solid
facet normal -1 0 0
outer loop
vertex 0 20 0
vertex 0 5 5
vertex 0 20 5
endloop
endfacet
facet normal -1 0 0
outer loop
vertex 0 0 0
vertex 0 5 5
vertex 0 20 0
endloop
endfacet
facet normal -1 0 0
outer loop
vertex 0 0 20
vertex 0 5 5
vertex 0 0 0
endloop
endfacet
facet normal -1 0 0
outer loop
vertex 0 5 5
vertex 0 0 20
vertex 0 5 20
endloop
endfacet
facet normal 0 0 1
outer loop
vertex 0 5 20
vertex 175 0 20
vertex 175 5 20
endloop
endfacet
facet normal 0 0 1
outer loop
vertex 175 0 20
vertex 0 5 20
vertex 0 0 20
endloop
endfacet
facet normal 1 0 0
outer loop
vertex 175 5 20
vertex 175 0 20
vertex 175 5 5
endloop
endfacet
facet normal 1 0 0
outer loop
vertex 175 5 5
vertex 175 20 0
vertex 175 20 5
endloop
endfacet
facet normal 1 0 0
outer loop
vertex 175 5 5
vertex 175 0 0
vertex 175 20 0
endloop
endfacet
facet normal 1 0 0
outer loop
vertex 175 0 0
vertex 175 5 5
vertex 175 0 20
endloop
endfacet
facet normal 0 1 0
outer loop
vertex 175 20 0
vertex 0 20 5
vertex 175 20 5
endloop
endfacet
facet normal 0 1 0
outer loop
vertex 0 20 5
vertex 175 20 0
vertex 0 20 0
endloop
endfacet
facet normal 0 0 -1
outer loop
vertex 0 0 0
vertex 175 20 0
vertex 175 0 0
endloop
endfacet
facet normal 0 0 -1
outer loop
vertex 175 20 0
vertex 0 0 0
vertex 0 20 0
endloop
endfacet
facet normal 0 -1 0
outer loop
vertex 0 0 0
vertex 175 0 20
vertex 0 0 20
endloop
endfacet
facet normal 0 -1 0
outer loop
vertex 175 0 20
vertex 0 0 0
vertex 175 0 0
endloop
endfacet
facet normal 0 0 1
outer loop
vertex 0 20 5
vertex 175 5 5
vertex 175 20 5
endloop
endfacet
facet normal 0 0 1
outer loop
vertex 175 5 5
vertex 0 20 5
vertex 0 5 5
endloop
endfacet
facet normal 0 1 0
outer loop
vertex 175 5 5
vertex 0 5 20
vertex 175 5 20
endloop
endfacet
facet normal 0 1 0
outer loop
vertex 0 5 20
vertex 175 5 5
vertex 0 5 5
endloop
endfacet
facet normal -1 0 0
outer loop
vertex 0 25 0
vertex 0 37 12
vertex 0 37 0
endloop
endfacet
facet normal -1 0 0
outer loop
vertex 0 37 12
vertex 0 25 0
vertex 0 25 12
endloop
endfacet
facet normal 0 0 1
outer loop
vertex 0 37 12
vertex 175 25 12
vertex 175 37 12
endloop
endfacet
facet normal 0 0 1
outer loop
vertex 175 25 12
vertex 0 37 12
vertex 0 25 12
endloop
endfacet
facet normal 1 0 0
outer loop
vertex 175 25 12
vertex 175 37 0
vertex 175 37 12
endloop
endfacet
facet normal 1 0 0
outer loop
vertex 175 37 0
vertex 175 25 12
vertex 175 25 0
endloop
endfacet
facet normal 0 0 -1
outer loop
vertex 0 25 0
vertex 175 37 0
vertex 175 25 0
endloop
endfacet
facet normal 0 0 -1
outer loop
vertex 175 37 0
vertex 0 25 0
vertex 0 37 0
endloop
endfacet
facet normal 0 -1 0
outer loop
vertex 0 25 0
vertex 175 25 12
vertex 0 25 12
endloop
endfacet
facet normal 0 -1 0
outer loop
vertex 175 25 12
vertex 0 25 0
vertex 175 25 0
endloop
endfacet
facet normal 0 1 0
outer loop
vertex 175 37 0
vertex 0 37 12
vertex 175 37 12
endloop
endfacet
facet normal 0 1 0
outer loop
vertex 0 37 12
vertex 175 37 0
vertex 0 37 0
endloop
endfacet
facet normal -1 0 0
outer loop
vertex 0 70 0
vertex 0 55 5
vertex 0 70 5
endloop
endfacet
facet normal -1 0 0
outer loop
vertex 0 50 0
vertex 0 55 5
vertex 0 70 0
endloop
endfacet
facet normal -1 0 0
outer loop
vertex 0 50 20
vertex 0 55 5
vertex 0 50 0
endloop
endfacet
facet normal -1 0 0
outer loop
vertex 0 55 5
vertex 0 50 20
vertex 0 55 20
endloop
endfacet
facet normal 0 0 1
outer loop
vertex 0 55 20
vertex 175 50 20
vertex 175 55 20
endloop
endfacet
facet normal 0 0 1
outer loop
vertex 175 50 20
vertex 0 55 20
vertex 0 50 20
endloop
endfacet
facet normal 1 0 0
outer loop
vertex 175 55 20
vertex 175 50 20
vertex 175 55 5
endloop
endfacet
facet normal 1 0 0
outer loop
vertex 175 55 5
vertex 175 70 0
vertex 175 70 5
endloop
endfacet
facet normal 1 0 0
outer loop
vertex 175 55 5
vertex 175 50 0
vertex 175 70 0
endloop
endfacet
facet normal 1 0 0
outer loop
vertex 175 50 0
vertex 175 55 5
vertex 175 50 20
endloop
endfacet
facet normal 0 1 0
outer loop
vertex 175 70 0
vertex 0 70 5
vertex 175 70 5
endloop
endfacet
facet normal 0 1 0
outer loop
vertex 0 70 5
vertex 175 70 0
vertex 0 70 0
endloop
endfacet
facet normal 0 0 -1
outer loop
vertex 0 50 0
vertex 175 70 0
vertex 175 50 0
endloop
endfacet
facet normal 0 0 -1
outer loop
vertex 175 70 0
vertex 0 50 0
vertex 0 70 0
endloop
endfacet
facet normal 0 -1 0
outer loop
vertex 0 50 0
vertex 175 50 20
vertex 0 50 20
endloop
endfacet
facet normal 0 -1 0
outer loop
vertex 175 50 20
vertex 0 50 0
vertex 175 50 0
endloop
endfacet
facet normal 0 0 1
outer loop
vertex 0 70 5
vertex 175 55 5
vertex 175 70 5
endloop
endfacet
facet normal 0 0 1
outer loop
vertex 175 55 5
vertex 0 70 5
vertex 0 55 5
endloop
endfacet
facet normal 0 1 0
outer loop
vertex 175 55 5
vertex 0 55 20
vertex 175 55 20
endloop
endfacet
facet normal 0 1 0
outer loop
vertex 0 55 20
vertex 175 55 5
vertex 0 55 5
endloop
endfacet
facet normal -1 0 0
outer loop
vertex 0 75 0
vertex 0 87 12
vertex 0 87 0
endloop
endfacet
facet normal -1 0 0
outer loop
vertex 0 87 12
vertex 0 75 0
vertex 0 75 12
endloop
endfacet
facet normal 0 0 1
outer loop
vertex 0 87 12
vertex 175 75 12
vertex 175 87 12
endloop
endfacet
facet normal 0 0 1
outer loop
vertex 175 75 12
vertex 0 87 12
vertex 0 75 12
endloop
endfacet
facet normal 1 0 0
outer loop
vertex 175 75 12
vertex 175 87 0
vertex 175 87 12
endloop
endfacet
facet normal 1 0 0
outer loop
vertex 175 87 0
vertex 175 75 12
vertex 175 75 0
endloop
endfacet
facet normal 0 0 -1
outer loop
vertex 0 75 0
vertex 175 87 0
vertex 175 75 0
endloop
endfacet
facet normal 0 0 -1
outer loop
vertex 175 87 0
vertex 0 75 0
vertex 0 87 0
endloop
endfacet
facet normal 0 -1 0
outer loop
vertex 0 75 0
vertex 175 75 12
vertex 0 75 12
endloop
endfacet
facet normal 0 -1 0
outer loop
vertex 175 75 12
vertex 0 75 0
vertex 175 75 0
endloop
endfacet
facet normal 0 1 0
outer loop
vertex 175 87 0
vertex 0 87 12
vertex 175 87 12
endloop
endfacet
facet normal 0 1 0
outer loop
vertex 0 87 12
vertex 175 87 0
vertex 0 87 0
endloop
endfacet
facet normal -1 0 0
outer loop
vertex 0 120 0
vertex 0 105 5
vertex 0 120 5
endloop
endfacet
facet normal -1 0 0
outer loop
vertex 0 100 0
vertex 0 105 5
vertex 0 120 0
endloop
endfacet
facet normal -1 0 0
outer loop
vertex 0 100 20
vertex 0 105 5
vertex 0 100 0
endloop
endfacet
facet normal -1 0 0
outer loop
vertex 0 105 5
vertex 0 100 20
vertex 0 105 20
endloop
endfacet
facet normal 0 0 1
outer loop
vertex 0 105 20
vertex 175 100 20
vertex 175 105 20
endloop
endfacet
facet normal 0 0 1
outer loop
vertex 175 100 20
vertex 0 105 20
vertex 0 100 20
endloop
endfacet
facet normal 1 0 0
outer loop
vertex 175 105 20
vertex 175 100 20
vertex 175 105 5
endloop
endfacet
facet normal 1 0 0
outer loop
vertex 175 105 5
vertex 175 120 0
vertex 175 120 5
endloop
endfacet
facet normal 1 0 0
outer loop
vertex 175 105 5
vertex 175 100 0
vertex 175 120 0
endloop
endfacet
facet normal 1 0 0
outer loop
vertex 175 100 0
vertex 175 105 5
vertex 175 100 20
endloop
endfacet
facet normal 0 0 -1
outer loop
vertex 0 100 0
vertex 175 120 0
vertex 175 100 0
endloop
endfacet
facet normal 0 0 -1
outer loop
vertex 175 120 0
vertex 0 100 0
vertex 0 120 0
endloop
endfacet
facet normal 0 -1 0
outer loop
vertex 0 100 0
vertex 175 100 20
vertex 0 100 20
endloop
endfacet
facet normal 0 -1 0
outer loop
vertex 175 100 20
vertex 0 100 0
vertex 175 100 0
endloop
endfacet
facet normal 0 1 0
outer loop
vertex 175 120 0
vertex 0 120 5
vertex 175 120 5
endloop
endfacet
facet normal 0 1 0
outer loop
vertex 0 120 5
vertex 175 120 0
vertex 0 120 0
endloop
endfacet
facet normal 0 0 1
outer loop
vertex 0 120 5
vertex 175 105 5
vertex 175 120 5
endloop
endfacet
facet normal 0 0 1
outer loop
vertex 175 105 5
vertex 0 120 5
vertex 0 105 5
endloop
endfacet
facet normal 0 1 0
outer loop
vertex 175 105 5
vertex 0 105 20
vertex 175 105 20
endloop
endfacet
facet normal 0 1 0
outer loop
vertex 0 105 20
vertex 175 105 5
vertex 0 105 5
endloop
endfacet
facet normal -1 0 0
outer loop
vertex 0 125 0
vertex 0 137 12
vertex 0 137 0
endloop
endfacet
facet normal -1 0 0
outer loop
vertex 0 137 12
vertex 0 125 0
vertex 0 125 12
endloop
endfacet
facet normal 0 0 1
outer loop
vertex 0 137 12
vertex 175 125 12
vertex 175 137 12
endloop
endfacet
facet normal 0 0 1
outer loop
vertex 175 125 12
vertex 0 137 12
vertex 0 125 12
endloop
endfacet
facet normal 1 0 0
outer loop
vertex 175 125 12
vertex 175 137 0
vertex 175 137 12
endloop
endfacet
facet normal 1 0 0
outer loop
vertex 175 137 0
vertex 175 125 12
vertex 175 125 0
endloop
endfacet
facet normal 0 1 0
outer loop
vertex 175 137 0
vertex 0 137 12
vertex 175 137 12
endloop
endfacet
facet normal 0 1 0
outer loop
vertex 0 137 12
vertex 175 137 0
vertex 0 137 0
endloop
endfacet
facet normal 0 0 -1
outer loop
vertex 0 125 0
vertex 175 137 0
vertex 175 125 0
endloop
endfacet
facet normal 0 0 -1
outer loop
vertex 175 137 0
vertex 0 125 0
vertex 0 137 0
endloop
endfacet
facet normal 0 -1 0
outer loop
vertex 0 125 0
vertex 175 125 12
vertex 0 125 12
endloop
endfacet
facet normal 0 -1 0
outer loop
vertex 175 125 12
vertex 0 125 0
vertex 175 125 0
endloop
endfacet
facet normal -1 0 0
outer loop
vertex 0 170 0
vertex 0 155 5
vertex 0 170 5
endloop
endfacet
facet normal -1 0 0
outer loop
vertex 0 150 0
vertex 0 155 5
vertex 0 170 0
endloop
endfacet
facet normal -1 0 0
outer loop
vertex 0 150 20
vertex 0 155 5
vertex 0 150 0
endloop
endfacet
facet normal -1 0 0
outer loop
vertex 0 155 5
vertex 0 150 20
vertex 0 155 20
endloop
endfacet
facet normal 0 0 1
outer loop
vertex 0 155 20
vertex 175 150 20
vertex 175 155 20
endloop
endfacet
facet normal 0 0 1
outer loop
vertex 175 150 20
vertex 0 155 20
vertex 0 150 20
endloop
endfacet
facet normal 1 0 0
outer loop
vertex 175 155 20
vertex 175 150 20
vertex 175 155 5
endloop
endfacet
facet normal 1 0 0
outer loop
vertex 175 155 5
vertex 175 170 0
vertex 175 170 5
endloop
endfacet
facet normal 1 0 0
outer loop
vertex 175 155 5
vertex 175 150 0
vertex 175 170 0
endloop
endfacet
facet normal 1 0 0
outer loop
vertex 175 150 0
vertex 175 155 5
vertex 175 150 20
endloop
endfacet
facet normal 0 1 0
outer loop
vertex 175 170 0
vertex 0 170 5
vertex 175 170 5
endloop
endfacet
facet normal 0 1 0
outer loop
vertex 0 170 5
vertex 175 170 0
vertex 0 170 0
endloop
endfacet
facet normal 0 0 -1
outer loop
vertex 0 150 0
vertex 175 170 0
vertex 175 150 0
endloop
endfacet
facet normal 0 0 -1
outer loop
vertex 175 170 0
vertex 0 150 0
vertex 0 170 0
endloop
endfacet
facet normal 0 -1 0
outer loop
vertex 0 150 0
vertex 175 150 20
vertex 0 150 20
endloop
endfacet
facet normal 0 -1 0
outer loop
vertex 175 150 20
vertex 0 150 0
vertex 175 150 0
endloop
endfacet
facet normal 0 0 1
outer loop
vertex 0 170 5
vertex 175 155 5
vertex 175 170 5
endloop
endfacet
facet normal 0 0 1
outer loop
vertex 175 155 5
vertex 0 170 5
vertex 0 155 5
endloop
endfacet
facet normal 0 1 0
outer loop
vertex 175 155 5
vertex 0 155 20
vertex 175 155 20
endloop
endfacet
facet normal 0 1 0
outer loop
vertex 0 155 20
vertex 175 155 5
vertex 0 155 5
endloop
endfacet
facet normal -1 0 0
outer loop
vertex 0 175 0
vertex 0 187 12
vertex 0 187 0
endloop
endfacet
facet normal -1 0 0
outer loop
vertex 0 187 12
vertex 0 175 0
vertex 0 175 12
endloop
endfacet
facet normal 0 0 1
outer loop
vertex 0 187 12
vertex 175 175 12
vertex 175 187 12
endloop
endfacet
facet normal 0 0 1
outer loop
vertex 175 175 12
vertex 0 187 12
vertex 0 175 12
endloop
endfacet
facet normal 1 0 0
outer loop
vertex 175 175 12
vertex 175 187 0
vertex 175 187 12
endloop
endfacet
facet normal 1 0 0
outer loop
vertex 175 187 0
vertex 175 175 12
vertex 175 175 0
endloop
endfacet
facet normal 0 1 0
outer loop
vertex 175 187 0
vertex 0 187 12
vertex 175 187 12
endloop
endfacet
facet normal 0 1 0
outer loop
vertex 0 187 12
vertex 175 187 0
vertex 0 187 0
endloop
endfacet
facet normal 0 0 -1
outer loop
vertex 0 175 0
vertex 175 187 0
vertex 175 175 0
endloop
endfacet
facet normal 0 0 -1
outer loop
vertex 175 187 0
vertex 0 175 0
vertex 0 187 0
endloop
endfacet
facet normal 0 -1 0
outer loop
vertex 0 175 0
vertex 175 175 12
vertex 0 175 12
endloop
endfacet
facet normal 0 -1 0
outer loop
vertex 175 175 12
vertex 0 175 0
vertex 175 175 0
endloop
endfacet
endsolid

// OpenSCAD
/* This piece was designed by Shawn French (McMaster University, Ontario, Canada)
It is part of the SCIFIcube (SCIentific Fluorescence Imaging cube), a small and portable 3D-printed
fluorescence imager for bacteria, yeast, or any colony-forming organism.  It works well with solid
agar medium, and can image high density samples rapidly over time.  

Details can be found at https://www.github.com/sfrench007/scificube

Copyright 2017 McMaster University

Redistribution and use in source and binary forms, with or without modification, are permitted provided that the following conditions are met:

1. Redistributions of source code must retain the above copyright notice, this list of conditions and the following disclaimer.

2. Redistributions in binary form must reproduce the above copyright notice, this list of conditions and the following disclaimer in the documentation and/or other materials provided with the distribution.

3. Neither the name of the copyright holder nor the names of its contributors may be used to endorse or promote products derived from this software without specific prior written permission.

THIS SOFTWARE IS PROVIDED BY THE COPYRIGHT HOLDERS AND CONTRIBUTORS "AS IS" AND ANY EXPRESS OR IMPLIED WARRANTIES, INCLUDING, BUT NOT LIMITED TO, THE IMPLIED WARRANTIES OF MERCHANTABILITY AND FITNESS FOR A PARTICULAR PURPOSE ARE DISCLAIMED. IN NO EVENT SHALL THE COPYRIGHT HOLDER OR CONTRIBUTORS BE LIABLE FOR ANY DIRECT, INDIRECT, INCIDENTAL, SPECIAL, EXEMPLARY, OR CONSEQUENTIAL DAMAGES (INCLUDING, BUT NOT LIMITED TO, PROCUREMENT OF SUBSTITUTE GOODS OR SERVICES; LOSS OF USE, DATA, OR PROFITS; OR BUSINESS INTERRUPTION) HOWEVER CAUSED AND ON ANY THEORY OF LIABILITY, WHETHER IN CONTRACT, STRICT LIABILITY, OR TORT (INCLUDING NEGLIGENCE OR OTHERWISE) ARISING IN ANY WAY OUT OF THE USE OF THIS SOFTWARE, EVEN IF ADVISED OF THE POSSIBILITY OF SUCH DAMAGE.

*/

// Height 175 mm (camera to base)
// Width 157 mm
// Depth 134 mm
// 135 mm camera to top of transilluminator
// 40 mm transilluminator height (base height)

boardWidth = 147;
boardDepth = 115;
boardHeight = 2;
acWidth = 11.5;
acHeight = 9;
acOffset = 5;
acRad = (acHeight/2)+1;
switchWidth = 11;
switchHeight = 7;
switchOffset = 3.5;

transDepth = 126.5;
transWidth = 157.5;
transHeight = 40;
transWallWidth = (transWidth-boardWidth)/2;

rigWallWidth = 3;
rigHeight = 175;
rigWidth = transWidth + (rigWallWidth * 2);
rigDepth = transDepth + (rigWallWidth * 2);
echo(rigWidth);
echo(rigDepth);
riserHeight = 4.8;
riserWidth = 10;

railWidth = 20;
sideWallWidth = 2;
allowance = 1;
slitDepth = 10;

// Make the 'L' shaped corners
module makeRail(xr,yr) {
    difference() {
        translate([xr,yr,0]) cube(size = [rigHeight,railWidth,railWidth],center=false);
        translate([xr,yr+(railWidth/4),railWidth/4]) cube(size = [rigHeight,railWidth,railWidth],center=false);
    }

    translate([xr,yr+(railWidth+5),0]) cube(size = [rigHeight,(railWidth*3/4)-sideWallWidth-allowance,(railWidth*3/4)-sideWallWidth-allowance],center=false);
}

makeRail(0,0);
makeRail(0,50);
makeRail(0,100);
makeRail(0,150);
